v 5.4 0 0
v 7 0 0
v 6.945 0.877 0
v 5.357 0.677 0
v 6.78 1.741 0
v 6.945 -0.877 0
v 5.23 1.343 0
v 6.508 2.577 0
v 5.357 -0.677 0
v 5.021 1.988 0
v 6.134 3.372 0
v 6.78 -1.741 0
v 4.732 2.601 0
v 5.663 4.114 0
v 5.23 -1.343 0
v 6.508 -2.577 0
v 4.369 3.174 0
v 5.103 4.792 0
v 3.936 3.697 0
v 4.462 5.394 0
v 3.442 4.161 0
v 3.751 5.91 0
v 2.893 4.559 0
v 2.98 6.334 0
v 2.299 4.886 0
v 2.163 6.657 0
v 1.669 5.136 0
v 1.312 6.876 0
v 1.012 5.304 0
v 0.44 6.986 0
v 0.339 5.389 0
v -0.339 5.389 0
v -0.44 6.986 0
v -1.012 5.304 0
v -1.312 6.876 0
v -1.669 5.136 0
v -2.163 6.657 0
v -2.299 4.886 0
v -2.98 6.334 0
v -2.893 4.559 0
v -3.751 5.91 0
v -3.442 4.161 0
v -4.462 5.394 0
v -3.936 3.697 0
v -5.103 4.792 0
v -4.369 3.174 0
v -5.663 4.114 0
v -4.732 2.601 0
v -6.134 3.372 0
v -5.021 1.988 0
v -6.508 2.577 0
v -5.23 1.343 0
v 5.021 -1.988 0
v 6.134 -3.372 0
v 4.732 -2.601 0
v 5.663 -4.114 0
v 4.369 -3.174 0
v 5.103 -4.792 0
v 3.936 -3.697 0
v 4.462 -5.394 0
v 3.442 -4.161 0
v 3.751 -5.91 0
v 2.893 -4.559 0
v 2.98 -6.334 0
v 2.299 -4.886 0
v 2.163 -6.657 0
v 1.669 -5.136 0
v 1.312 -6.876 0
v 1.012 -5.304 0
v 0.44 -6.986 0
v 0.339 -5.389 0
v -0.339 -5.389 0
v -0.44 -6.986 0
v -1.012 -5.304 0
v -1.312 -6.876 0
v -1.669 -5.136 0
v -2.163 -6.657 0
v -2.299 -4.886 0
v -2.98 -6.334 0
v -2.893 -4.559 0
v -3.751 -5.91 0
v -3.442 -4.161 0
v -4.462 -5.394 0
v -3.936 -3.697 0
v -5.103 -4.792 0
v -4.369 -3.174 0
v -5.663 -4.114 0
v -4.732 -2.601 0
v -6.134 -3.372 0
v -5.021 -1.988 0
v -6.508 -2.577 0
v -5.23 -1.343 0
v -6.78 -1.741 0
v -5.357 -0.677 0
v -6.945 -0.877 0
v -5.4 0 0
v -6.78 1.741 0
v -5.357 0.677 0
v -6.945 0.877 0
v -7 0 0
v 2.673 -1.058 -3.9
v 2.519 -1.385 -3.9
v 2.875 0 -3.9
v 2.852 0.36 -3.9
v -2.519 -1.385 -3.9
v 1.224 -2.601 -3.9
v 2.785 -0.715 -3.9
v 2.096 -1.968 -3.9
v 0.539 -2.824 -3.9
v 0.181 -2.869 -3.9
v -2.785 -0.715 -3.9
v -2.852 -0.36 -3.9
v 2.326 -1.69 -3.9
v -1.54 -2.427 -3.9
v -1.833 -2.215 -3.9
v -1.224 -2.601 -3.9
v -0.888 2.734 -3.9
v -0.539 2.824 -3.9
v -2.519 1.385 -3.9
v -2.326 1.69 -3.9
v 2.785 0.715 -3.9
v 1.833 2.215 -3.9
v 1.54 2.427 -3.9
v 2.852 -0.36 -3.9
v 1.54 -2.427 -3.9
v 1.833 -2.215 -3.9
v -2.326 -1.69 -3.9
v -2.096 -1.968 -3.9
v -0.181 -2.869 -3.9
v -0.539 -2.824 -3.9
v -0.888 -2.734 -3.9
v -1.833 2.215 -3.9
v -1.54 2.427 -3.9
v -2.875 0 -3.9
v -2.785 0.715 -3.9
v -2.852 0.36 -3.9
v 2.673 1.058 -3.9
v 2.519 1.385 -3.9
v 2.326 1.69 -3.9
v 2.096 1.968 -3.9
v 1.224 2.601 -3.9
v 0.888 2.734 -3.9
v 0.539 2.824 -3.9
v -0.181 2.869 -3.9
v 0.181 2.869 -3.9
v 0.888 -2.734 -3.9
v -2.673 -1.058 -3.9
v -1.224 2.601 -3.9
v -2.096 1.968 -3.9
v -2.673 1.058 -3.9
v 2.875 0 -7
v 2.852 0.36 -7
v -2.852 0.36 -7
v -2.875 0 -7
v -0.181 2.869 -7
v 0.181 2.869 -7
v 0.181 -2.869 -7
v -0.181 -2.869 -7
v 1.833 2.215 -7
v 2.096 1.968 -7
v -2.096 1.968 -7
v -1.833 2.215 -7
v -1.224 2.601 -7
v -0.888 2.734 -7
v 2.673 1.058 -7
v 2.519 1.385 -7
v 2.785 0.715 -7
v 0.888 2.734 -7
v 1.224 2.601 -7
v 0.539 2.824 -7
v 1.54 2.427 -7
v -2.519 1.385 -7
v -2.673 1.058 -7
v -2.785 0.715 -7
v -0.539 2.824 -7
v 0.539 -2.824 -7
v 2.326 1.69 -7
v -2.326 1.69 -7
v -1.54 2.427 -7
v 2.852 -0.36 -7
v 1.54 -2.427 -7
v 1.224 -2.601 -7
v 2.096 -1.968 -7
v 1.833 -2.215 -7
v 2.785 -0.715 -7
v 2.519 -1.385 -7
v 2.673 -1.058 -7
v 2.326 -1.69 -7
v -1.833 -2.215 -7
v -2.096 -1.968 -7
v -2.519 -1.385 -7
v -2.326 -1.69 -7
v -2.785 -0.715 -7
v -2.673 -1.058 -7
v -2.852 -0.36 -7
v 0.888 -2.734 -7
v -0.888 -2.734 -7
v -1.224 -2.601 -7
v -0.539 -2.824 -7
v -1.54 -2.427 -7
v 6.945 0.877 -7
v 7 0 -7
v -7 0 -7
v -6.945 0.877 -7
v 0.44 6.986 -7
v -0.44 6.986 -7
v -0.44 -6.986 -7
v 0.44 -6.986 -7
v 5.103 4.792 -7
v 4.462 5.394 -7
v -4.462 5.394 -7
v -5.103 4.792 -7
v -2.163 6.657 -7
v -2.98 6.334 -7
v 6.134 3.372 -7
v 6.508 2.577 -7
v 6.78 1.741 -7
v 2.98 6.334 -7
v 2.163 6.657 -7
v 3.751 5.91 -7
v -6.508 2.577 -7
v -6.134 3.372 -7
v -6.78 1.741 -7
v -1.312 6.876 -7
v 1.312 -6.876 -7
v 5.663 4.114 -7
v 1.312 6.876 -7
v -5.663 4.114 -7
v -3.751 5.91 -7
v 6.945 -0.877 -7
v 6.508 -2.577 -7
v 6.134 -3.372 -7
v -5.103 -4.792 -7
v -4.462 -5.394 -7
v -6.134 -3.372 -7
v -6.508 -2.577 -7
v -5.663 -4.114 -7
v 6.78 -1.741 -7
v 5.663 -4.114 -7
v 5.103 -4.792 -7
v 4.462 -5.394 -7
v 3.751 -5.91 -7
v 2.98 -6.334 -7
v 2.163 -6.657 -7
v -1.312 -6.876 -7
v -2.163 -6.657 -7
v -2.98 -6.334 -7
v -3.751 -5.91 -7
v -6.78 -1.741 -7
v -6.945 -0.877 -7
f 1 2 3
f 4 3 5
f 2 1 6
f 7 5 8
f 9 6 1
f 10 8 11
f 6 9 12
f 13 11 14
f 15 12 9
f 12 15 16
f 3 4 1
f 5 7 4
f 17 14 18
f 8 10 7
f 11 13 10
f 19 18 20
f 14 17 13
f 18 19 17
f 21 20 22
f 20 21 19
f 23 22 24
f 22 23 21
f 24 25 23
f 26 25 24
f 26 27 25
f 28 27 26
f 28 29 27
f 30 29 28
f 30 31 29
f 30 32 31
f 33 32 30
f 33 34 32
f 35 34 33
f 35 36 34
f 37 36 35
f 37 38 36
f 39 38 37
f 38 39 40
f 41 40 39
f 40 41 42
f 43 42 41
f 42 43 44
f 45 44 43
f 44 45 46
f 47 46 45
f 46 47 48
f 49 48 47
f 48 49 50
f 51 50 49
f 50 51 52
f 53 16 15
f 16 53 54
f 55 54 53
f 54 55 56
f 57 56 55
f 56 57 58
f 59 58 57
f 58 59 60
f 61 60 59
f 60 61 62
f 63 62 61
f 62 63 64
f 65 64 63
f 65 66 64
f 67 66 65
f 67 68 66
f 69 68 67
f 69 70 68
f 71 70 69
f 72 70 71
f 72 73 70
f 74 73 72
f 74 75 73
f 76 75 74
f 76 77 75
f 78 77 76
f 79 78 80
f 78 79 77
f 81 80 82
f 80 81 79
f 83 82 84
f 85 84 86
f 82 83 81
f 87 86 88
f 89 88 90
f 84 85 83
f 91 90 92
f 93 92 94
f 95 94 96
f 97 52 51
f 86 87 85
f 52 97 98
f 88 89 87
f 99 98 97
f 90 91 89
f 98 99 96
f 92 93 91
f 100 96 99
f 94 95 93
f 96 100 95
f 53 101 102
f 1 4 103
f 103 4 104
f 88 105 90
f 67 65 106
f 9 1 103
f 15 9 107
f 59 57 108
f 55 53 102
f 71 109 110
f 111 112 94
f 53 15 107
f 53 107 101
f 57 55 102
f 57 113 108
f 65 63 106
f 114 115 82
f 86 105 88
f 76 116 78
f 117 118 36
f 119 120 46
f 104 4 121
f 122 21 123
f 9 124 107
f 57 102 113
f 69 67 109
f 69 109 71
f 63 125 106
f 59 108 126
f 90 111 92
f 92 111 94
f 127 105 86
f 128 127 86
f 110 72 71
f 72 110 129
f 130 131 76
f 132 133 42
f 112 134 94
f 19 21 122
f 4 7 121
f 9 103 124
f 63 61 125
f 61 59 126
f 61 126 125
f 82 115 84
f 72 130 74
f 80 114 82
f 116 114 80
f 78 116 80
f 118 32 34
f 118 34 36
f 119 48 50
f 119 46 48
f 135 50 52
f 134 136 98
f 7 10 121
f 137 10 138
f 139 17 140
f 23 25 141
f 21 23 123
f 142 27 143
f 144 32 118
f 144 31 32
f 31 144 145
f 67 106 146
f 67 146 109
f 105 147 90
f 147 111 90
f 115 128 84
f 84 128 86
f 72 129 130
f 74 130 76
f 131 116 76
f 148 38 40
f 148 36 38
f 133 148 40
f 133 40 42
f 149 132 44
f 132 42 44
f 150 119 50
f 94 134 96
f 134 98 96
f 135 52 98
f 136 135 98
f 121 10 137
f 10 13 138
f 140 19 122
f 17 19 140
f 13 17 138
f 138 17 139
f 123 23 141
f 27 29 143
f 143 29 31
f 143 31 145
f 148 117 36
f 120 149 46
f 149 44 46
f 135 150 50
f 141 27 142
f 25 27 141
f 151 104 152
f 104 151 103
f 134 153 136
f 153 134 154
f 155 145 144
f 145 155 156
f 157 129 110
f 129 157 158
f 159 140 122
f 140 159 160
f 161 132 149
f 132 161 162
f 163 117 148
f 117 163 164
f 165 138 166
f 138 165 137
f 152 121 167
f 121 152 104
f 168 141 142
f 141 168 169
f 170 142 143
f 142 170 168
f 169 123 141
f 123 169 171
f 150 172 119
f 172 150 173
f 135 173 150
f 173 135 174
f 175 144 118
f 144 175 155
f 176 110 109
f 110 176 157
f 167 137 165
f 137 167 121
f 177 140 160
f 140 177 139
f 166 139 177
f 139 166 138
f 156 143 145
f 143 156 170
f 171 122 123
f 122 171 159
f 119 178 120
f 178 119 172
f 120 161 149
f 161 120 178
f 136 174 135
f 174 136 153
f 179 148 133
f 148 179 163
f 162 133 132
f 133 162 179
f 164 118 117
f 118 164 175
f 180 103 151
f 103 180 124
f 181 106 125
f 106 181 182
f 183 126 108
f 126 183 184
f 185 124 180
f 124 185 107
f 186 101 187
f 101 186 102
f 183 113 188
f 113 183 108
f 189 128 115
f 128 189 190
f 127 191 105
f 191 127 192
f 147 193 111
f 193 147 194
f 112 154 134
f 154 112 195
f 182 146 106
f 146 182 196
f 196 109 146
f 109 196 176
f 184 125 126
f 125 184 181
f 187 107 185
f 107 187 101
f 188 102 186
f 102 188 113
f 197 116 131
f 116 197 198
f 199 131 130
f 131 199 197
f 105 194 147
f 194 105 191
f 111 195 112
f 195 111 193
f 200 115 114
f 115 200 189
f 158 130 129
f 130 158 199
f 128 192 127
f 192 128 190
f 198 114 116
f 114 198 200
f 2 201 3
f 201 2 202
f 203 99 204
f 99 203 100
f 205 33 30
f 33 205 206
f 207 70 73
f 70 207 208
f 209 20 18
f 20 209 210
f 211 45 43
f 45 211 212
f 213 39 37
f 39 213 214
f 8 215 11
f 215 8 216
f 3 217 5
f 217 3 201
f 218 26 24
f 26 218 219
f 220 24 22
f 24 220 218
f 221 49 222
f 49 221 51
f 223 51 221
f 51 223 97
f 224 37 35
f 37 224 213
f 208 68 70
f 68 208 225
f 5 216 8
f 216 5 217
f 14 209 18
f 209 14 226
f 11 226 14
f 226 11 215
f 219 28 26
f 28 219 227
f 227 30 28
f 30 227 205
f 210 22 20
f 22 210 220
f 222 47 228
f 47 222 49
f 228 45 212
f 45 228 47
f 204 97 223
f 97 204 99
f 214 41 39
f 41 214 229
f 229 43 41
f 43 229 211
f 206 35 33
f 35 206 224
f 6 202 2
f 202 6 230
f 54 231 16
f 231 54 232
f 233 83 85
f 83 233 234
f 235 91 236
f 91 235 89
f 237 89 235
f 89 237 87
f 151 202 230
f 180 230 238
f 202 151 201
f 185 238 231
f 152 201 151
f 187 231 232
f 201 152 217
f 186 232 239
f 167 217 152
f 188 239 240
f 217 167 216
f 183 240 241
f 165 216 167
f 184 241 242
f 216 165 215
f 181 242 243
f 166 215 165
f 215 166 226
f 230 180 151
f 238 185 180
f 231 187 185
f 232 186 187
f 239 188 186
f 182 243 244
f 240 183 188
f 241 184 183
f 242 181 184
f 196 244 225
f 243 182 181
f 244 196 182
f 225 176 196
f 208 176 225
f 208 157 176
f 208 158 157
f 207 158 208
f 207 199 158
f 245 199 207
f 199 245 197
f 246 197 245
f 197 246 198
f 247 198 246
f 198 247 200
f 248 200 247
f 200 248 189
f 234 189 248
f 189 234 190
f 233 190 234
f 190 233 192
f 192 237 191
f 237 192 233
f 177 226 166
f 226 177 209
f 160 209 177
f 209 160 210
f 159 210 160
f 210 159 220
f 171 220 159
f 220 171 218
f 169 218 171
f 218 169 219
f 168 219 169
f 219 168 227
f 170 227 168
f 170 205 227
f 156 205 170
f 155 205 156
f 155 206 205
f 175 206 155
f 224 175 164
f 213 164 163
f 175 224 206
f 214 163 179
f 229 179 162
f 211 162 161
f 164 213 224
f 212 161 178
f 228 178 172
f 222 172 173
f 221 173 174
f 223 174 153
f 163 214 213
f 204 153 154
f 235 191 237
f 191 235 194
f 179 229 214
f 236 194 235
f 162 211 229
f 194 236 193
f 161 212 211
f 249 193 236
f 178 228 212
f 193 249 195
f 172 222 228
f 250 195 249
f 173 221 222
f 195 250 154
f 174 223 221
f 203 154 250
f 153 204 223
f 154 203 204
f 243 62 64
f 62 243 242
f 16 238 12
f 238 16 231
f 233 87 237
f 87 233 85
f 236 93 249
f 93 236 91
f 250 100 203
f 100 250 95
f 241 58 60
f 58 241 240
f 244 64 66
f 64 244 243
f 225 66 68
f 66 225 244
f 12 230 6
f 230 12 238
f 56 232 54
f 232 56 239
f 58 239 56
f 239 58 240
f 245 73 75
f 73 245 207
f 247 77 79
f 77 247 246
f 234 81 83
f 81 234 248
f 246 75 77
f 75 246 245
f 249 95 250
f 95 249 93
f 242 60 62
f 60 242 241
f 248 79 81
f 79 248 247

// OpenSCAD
$fn = 50;


difference() {
	union() {
		translate(v = [0, 0, -7.0000000000]) {
			cylinder(h = 7, r = 7.0000000000);
		}
	}
	union() {
		translate(v = [0, 0, 0]) {
			rotate(a = [0, 0, 0]) {
				difference() {
					union() {
						#translate(v = [0, 0, -9.0000000000]) {
							cylinder(h = 9, r = 2.6000000000);
						}
						#translate(v = [0, 0, -3.9000000000]) {
							cylinder(h = 3.9000000000, r1 = 2.8750000000, r2 = 5.4000000000);
						}
						#translate(v = [0, 0, -9.0000000000]) {
							cylinder(h = 9, r = 2.8750000000);
						}
						#translate(v = [0, 0, -9.0000000000]) {
							cylinder(h = 9, r = 2.6000000000);
						}
					}
					union();
				}
			}
		}
	}
}
